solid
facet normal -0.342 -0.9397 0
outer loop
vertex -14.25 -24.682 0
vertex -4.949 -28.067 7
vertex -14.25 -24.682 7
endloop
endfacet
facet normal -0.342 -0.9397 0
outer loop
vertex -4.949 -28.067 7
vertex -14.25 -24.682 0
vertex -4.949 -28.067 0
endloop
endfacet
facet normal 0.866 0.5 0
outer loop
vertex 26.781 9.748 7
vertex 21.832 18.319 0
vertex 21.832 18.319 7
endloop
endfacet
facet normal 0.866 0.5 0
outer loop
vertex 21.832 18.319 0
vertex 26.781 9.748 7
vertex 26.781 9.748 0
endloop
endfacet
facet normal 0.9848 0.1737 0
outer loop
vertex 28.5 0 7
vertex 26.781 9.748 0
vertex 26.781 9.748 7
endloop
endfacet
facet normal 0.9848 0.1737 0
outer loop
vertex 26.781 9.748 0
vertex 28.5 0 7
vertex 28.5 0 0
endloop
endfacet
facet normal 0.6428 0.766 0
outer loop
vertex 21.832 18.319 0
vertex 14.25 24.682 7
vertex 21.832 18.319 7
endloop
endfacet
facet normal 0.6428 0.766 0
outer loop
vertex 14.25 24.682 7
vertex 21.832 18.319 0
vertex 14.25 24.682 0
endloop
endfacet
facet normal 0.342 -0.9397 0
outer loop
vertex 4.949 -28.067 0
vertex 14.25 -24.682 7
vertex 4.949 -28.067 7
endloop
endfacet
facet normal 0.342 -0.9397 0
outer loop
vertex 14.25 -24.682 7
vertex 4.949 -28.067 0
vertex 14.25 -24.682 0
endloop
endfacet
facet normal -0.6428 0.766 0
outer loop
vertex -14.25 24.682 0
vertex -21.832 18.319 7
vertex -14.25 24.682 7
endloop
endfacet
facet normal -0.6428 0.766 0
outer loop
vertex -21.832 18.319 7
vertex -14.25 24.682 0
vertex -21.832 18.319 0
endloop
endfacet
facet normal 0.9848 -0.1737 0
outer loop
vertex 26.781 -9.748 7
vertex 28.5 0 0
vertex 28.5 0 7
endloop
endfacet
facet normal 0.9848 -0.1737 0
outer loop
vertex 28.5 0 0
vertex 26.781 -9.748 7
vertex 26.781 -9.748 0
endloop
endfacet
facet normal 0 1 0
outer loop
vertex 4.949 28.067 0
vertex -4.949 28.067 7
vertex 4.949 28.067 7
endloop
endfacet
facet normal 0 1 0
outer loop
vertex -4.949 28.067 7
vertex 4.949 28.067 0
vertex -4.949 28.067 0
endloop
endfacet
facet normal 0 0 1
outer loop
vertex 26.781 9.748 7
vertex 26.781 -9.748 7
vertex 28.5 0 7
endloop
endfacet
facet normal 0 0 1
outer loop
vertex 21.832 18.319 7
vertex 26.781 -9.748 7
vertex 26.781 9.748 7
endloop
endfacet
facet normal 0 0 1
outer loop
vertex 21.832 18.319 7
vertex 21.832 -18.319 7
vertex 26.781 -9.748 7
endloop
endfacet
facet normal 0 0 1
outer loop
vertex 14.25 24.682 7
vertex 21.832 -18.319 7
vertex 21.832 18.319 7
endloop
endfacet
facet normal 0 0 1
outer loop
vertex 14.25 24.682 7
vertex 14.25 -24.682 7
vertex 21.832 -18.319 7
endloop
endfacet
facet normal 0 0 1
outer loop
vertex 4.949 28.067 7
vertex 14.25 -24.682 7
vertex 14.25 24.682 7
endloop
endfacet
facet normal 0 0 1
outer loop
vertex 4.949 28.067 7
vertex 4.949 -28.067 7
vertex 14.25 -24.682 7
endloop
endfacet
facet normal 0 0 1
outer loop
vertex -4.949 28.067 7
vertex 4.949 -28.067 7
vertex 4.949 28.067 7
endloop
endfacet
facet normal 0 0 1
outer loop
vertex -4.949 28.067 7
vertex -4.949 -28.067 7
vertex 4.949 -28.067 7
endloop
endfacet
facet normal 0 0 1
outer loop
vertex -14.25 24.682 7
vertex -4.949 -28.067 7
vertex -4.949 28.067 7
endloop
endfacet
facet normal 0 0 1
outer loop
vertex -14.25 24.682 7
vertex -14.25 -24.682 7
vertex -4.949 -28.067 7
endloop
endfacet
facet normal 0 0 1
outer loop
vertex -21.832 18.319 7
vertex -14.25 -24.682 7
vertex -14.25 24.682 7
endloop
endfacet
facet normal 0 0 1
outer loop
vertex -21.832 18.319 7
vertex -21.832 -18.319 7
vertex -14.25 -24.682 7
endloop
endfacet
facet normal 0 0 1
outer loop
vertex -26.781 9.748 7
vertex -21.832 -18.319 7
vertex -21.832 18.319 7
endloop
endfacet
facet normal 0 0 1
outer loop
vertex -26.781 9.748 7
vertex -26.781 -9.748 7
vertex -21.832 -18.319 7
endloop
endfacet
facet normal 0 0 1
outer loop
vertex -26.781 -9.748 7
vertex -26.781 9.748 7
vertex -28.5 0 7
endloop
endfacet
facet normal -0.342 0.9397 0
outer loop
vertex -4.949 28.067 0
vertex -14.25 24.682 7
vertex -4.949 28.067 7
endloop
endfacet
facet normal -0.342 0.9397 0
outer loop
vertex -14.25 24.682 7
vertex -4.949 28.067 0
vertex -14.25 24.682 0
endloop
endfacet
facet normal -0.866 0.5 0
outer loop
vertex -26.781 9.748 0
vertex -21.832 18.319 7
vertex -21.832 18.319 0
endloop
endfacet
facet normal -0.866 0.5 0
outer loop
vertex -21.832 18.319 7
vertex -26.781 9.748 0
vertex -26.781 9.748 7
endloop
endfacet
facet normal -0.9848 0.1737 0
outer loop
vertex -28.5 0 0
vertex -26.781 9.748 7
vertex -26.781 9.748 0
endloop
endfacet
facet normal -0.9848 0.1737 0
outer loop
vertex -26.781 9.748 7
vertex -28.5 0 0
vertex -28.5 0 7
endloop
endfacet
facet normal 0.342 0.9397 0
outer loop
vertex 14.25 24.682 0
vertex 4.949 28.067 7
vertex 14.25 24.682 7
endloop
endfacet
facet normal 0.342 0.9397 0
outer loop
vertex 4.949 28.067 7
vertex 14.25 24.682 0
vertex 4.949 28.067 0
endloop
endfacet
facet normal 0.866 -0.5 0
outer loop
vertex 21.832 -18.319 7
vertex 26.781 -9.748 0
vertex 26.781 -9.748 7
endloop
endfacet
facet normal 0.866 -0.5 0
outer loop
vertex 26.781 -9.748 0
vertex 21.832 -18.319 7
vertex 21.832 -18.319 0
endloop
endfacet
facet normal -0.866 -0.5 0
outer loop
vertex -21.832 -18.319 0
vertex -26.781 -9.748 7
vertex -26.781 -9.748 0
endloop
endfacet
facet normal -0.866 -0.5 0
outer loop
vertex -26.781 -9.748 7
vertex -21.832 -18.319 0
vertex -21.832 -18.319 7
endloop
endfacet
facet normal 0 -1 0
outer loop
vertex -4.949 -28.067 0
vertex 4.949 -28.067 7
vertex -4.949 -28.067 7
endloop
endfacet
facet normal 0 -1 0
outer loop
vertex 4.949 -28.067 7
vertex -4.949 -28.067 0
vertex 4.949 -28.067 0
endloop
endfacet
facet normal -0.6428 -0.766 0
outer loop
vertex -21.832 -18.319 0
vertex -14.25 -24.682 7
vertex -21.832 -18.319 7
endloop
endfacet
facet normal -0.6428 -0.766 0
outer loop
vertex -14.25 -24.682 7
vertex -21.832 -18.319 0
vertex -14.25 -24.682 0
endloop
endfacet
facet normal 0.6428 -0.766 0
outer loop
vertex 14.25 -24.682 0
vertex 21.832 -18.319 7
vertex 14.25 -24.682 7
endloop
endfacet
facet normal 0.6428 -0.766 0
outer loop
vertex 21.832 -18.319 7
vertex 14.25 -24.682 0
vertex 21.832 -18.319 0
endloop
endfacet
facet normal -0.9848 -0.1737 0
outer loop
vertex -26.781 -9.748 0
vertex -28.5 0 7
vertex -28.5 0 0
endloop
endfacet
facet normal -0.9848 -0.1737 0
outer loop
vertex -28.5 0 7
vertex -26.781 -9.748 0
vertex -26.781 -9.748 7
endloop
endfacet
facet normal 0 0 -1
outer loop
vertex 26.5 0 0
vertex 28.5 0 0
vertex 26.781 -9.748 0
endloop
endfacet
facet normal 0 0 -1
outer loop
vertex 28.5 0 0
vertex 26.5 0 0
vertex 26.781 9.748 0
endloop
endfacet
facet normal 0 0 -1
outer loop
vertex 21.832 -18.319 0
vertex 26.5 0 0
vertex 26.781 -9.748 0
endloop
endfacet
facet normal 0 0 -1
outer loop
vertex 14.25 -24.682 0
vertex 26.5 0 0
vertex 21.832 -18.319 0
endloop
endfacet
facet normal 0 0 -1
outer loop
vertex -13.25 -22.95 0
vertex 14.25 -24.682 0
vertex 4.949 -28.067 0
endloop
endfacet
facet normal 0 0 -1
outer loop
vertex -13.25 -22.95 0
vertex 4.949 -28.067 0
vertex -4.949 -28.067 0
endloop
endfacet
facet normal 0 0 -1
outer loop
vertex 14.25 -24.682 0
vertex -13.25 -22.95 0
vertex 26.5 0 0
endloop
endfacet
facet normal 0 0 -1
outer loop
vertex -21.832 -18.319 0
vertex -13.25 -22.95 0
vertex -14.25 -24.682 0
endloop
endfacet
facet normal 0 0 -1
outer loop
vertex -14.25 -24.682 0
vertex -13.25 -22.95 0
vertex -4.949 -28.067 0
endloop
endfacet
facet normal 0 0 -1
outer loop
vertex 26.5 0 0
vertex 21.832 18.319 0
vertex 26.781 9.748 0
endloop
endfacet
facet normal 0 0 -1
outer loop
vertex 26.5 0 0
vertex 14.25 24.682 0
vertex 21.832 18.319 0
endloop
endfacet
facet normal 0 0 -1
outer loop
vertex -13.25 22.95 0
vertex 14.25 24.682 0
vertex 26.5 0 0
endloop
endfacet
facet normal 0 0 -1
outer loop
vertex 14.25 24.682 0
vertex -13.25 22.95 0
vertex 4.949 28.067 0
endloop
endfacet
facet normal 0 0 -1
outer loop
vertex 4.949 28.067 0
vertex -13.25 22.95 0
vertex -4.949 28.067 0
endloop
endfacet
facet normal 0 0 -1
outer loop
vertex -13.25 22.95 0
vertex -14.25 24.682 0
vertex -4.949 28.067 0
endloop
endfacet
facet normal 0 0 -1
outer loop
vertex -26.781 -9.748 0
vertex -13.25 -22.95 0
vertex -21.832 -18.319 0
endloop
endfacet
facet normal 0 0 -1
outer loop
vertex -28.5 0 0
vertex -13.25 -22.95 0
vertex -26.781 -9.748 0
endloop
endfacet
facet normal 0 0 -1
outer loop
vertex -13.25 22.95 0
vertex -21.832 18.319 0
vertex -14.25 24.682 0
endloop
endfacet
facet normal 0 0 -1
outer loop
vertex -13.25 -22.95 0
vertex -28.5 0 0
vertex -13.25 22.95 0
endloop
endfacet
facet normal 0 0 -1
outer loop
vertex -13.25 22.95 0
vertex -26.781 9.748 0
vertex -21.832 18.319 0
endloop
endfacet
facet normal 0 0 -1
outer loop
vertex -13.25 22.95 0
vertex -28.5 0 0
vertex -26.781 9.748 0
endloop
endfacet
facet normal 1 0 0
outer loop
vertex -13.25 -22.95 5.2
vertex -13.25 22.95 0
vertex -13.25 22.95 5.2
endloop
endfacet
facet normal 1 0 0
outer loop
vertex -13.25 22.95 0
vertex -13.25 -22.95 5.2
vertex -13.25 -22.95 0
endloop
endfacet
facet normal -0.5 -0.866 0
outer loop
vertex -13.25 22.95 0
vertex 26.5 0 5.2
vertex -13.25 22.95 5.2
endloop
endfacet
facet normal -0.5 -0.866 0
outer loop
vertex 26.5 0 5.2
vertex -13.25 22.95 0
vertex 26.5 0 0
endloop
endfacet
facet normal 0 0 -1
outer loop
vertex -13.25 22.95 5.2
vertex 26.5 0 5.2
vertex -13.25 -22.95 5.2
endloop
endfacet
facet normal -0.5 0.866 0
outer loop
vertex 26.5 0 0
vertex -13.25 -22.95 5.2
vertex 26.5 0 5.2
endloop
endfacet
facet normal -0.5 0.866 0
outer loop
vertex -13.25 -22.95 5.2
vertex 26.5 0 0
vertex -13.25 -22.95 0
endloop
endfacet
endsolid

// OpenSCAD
difference(){
	cylinder(d=57, h=7, $fn=18);
	#cylinder(d=53, h=5.2, $fn=3);
}
